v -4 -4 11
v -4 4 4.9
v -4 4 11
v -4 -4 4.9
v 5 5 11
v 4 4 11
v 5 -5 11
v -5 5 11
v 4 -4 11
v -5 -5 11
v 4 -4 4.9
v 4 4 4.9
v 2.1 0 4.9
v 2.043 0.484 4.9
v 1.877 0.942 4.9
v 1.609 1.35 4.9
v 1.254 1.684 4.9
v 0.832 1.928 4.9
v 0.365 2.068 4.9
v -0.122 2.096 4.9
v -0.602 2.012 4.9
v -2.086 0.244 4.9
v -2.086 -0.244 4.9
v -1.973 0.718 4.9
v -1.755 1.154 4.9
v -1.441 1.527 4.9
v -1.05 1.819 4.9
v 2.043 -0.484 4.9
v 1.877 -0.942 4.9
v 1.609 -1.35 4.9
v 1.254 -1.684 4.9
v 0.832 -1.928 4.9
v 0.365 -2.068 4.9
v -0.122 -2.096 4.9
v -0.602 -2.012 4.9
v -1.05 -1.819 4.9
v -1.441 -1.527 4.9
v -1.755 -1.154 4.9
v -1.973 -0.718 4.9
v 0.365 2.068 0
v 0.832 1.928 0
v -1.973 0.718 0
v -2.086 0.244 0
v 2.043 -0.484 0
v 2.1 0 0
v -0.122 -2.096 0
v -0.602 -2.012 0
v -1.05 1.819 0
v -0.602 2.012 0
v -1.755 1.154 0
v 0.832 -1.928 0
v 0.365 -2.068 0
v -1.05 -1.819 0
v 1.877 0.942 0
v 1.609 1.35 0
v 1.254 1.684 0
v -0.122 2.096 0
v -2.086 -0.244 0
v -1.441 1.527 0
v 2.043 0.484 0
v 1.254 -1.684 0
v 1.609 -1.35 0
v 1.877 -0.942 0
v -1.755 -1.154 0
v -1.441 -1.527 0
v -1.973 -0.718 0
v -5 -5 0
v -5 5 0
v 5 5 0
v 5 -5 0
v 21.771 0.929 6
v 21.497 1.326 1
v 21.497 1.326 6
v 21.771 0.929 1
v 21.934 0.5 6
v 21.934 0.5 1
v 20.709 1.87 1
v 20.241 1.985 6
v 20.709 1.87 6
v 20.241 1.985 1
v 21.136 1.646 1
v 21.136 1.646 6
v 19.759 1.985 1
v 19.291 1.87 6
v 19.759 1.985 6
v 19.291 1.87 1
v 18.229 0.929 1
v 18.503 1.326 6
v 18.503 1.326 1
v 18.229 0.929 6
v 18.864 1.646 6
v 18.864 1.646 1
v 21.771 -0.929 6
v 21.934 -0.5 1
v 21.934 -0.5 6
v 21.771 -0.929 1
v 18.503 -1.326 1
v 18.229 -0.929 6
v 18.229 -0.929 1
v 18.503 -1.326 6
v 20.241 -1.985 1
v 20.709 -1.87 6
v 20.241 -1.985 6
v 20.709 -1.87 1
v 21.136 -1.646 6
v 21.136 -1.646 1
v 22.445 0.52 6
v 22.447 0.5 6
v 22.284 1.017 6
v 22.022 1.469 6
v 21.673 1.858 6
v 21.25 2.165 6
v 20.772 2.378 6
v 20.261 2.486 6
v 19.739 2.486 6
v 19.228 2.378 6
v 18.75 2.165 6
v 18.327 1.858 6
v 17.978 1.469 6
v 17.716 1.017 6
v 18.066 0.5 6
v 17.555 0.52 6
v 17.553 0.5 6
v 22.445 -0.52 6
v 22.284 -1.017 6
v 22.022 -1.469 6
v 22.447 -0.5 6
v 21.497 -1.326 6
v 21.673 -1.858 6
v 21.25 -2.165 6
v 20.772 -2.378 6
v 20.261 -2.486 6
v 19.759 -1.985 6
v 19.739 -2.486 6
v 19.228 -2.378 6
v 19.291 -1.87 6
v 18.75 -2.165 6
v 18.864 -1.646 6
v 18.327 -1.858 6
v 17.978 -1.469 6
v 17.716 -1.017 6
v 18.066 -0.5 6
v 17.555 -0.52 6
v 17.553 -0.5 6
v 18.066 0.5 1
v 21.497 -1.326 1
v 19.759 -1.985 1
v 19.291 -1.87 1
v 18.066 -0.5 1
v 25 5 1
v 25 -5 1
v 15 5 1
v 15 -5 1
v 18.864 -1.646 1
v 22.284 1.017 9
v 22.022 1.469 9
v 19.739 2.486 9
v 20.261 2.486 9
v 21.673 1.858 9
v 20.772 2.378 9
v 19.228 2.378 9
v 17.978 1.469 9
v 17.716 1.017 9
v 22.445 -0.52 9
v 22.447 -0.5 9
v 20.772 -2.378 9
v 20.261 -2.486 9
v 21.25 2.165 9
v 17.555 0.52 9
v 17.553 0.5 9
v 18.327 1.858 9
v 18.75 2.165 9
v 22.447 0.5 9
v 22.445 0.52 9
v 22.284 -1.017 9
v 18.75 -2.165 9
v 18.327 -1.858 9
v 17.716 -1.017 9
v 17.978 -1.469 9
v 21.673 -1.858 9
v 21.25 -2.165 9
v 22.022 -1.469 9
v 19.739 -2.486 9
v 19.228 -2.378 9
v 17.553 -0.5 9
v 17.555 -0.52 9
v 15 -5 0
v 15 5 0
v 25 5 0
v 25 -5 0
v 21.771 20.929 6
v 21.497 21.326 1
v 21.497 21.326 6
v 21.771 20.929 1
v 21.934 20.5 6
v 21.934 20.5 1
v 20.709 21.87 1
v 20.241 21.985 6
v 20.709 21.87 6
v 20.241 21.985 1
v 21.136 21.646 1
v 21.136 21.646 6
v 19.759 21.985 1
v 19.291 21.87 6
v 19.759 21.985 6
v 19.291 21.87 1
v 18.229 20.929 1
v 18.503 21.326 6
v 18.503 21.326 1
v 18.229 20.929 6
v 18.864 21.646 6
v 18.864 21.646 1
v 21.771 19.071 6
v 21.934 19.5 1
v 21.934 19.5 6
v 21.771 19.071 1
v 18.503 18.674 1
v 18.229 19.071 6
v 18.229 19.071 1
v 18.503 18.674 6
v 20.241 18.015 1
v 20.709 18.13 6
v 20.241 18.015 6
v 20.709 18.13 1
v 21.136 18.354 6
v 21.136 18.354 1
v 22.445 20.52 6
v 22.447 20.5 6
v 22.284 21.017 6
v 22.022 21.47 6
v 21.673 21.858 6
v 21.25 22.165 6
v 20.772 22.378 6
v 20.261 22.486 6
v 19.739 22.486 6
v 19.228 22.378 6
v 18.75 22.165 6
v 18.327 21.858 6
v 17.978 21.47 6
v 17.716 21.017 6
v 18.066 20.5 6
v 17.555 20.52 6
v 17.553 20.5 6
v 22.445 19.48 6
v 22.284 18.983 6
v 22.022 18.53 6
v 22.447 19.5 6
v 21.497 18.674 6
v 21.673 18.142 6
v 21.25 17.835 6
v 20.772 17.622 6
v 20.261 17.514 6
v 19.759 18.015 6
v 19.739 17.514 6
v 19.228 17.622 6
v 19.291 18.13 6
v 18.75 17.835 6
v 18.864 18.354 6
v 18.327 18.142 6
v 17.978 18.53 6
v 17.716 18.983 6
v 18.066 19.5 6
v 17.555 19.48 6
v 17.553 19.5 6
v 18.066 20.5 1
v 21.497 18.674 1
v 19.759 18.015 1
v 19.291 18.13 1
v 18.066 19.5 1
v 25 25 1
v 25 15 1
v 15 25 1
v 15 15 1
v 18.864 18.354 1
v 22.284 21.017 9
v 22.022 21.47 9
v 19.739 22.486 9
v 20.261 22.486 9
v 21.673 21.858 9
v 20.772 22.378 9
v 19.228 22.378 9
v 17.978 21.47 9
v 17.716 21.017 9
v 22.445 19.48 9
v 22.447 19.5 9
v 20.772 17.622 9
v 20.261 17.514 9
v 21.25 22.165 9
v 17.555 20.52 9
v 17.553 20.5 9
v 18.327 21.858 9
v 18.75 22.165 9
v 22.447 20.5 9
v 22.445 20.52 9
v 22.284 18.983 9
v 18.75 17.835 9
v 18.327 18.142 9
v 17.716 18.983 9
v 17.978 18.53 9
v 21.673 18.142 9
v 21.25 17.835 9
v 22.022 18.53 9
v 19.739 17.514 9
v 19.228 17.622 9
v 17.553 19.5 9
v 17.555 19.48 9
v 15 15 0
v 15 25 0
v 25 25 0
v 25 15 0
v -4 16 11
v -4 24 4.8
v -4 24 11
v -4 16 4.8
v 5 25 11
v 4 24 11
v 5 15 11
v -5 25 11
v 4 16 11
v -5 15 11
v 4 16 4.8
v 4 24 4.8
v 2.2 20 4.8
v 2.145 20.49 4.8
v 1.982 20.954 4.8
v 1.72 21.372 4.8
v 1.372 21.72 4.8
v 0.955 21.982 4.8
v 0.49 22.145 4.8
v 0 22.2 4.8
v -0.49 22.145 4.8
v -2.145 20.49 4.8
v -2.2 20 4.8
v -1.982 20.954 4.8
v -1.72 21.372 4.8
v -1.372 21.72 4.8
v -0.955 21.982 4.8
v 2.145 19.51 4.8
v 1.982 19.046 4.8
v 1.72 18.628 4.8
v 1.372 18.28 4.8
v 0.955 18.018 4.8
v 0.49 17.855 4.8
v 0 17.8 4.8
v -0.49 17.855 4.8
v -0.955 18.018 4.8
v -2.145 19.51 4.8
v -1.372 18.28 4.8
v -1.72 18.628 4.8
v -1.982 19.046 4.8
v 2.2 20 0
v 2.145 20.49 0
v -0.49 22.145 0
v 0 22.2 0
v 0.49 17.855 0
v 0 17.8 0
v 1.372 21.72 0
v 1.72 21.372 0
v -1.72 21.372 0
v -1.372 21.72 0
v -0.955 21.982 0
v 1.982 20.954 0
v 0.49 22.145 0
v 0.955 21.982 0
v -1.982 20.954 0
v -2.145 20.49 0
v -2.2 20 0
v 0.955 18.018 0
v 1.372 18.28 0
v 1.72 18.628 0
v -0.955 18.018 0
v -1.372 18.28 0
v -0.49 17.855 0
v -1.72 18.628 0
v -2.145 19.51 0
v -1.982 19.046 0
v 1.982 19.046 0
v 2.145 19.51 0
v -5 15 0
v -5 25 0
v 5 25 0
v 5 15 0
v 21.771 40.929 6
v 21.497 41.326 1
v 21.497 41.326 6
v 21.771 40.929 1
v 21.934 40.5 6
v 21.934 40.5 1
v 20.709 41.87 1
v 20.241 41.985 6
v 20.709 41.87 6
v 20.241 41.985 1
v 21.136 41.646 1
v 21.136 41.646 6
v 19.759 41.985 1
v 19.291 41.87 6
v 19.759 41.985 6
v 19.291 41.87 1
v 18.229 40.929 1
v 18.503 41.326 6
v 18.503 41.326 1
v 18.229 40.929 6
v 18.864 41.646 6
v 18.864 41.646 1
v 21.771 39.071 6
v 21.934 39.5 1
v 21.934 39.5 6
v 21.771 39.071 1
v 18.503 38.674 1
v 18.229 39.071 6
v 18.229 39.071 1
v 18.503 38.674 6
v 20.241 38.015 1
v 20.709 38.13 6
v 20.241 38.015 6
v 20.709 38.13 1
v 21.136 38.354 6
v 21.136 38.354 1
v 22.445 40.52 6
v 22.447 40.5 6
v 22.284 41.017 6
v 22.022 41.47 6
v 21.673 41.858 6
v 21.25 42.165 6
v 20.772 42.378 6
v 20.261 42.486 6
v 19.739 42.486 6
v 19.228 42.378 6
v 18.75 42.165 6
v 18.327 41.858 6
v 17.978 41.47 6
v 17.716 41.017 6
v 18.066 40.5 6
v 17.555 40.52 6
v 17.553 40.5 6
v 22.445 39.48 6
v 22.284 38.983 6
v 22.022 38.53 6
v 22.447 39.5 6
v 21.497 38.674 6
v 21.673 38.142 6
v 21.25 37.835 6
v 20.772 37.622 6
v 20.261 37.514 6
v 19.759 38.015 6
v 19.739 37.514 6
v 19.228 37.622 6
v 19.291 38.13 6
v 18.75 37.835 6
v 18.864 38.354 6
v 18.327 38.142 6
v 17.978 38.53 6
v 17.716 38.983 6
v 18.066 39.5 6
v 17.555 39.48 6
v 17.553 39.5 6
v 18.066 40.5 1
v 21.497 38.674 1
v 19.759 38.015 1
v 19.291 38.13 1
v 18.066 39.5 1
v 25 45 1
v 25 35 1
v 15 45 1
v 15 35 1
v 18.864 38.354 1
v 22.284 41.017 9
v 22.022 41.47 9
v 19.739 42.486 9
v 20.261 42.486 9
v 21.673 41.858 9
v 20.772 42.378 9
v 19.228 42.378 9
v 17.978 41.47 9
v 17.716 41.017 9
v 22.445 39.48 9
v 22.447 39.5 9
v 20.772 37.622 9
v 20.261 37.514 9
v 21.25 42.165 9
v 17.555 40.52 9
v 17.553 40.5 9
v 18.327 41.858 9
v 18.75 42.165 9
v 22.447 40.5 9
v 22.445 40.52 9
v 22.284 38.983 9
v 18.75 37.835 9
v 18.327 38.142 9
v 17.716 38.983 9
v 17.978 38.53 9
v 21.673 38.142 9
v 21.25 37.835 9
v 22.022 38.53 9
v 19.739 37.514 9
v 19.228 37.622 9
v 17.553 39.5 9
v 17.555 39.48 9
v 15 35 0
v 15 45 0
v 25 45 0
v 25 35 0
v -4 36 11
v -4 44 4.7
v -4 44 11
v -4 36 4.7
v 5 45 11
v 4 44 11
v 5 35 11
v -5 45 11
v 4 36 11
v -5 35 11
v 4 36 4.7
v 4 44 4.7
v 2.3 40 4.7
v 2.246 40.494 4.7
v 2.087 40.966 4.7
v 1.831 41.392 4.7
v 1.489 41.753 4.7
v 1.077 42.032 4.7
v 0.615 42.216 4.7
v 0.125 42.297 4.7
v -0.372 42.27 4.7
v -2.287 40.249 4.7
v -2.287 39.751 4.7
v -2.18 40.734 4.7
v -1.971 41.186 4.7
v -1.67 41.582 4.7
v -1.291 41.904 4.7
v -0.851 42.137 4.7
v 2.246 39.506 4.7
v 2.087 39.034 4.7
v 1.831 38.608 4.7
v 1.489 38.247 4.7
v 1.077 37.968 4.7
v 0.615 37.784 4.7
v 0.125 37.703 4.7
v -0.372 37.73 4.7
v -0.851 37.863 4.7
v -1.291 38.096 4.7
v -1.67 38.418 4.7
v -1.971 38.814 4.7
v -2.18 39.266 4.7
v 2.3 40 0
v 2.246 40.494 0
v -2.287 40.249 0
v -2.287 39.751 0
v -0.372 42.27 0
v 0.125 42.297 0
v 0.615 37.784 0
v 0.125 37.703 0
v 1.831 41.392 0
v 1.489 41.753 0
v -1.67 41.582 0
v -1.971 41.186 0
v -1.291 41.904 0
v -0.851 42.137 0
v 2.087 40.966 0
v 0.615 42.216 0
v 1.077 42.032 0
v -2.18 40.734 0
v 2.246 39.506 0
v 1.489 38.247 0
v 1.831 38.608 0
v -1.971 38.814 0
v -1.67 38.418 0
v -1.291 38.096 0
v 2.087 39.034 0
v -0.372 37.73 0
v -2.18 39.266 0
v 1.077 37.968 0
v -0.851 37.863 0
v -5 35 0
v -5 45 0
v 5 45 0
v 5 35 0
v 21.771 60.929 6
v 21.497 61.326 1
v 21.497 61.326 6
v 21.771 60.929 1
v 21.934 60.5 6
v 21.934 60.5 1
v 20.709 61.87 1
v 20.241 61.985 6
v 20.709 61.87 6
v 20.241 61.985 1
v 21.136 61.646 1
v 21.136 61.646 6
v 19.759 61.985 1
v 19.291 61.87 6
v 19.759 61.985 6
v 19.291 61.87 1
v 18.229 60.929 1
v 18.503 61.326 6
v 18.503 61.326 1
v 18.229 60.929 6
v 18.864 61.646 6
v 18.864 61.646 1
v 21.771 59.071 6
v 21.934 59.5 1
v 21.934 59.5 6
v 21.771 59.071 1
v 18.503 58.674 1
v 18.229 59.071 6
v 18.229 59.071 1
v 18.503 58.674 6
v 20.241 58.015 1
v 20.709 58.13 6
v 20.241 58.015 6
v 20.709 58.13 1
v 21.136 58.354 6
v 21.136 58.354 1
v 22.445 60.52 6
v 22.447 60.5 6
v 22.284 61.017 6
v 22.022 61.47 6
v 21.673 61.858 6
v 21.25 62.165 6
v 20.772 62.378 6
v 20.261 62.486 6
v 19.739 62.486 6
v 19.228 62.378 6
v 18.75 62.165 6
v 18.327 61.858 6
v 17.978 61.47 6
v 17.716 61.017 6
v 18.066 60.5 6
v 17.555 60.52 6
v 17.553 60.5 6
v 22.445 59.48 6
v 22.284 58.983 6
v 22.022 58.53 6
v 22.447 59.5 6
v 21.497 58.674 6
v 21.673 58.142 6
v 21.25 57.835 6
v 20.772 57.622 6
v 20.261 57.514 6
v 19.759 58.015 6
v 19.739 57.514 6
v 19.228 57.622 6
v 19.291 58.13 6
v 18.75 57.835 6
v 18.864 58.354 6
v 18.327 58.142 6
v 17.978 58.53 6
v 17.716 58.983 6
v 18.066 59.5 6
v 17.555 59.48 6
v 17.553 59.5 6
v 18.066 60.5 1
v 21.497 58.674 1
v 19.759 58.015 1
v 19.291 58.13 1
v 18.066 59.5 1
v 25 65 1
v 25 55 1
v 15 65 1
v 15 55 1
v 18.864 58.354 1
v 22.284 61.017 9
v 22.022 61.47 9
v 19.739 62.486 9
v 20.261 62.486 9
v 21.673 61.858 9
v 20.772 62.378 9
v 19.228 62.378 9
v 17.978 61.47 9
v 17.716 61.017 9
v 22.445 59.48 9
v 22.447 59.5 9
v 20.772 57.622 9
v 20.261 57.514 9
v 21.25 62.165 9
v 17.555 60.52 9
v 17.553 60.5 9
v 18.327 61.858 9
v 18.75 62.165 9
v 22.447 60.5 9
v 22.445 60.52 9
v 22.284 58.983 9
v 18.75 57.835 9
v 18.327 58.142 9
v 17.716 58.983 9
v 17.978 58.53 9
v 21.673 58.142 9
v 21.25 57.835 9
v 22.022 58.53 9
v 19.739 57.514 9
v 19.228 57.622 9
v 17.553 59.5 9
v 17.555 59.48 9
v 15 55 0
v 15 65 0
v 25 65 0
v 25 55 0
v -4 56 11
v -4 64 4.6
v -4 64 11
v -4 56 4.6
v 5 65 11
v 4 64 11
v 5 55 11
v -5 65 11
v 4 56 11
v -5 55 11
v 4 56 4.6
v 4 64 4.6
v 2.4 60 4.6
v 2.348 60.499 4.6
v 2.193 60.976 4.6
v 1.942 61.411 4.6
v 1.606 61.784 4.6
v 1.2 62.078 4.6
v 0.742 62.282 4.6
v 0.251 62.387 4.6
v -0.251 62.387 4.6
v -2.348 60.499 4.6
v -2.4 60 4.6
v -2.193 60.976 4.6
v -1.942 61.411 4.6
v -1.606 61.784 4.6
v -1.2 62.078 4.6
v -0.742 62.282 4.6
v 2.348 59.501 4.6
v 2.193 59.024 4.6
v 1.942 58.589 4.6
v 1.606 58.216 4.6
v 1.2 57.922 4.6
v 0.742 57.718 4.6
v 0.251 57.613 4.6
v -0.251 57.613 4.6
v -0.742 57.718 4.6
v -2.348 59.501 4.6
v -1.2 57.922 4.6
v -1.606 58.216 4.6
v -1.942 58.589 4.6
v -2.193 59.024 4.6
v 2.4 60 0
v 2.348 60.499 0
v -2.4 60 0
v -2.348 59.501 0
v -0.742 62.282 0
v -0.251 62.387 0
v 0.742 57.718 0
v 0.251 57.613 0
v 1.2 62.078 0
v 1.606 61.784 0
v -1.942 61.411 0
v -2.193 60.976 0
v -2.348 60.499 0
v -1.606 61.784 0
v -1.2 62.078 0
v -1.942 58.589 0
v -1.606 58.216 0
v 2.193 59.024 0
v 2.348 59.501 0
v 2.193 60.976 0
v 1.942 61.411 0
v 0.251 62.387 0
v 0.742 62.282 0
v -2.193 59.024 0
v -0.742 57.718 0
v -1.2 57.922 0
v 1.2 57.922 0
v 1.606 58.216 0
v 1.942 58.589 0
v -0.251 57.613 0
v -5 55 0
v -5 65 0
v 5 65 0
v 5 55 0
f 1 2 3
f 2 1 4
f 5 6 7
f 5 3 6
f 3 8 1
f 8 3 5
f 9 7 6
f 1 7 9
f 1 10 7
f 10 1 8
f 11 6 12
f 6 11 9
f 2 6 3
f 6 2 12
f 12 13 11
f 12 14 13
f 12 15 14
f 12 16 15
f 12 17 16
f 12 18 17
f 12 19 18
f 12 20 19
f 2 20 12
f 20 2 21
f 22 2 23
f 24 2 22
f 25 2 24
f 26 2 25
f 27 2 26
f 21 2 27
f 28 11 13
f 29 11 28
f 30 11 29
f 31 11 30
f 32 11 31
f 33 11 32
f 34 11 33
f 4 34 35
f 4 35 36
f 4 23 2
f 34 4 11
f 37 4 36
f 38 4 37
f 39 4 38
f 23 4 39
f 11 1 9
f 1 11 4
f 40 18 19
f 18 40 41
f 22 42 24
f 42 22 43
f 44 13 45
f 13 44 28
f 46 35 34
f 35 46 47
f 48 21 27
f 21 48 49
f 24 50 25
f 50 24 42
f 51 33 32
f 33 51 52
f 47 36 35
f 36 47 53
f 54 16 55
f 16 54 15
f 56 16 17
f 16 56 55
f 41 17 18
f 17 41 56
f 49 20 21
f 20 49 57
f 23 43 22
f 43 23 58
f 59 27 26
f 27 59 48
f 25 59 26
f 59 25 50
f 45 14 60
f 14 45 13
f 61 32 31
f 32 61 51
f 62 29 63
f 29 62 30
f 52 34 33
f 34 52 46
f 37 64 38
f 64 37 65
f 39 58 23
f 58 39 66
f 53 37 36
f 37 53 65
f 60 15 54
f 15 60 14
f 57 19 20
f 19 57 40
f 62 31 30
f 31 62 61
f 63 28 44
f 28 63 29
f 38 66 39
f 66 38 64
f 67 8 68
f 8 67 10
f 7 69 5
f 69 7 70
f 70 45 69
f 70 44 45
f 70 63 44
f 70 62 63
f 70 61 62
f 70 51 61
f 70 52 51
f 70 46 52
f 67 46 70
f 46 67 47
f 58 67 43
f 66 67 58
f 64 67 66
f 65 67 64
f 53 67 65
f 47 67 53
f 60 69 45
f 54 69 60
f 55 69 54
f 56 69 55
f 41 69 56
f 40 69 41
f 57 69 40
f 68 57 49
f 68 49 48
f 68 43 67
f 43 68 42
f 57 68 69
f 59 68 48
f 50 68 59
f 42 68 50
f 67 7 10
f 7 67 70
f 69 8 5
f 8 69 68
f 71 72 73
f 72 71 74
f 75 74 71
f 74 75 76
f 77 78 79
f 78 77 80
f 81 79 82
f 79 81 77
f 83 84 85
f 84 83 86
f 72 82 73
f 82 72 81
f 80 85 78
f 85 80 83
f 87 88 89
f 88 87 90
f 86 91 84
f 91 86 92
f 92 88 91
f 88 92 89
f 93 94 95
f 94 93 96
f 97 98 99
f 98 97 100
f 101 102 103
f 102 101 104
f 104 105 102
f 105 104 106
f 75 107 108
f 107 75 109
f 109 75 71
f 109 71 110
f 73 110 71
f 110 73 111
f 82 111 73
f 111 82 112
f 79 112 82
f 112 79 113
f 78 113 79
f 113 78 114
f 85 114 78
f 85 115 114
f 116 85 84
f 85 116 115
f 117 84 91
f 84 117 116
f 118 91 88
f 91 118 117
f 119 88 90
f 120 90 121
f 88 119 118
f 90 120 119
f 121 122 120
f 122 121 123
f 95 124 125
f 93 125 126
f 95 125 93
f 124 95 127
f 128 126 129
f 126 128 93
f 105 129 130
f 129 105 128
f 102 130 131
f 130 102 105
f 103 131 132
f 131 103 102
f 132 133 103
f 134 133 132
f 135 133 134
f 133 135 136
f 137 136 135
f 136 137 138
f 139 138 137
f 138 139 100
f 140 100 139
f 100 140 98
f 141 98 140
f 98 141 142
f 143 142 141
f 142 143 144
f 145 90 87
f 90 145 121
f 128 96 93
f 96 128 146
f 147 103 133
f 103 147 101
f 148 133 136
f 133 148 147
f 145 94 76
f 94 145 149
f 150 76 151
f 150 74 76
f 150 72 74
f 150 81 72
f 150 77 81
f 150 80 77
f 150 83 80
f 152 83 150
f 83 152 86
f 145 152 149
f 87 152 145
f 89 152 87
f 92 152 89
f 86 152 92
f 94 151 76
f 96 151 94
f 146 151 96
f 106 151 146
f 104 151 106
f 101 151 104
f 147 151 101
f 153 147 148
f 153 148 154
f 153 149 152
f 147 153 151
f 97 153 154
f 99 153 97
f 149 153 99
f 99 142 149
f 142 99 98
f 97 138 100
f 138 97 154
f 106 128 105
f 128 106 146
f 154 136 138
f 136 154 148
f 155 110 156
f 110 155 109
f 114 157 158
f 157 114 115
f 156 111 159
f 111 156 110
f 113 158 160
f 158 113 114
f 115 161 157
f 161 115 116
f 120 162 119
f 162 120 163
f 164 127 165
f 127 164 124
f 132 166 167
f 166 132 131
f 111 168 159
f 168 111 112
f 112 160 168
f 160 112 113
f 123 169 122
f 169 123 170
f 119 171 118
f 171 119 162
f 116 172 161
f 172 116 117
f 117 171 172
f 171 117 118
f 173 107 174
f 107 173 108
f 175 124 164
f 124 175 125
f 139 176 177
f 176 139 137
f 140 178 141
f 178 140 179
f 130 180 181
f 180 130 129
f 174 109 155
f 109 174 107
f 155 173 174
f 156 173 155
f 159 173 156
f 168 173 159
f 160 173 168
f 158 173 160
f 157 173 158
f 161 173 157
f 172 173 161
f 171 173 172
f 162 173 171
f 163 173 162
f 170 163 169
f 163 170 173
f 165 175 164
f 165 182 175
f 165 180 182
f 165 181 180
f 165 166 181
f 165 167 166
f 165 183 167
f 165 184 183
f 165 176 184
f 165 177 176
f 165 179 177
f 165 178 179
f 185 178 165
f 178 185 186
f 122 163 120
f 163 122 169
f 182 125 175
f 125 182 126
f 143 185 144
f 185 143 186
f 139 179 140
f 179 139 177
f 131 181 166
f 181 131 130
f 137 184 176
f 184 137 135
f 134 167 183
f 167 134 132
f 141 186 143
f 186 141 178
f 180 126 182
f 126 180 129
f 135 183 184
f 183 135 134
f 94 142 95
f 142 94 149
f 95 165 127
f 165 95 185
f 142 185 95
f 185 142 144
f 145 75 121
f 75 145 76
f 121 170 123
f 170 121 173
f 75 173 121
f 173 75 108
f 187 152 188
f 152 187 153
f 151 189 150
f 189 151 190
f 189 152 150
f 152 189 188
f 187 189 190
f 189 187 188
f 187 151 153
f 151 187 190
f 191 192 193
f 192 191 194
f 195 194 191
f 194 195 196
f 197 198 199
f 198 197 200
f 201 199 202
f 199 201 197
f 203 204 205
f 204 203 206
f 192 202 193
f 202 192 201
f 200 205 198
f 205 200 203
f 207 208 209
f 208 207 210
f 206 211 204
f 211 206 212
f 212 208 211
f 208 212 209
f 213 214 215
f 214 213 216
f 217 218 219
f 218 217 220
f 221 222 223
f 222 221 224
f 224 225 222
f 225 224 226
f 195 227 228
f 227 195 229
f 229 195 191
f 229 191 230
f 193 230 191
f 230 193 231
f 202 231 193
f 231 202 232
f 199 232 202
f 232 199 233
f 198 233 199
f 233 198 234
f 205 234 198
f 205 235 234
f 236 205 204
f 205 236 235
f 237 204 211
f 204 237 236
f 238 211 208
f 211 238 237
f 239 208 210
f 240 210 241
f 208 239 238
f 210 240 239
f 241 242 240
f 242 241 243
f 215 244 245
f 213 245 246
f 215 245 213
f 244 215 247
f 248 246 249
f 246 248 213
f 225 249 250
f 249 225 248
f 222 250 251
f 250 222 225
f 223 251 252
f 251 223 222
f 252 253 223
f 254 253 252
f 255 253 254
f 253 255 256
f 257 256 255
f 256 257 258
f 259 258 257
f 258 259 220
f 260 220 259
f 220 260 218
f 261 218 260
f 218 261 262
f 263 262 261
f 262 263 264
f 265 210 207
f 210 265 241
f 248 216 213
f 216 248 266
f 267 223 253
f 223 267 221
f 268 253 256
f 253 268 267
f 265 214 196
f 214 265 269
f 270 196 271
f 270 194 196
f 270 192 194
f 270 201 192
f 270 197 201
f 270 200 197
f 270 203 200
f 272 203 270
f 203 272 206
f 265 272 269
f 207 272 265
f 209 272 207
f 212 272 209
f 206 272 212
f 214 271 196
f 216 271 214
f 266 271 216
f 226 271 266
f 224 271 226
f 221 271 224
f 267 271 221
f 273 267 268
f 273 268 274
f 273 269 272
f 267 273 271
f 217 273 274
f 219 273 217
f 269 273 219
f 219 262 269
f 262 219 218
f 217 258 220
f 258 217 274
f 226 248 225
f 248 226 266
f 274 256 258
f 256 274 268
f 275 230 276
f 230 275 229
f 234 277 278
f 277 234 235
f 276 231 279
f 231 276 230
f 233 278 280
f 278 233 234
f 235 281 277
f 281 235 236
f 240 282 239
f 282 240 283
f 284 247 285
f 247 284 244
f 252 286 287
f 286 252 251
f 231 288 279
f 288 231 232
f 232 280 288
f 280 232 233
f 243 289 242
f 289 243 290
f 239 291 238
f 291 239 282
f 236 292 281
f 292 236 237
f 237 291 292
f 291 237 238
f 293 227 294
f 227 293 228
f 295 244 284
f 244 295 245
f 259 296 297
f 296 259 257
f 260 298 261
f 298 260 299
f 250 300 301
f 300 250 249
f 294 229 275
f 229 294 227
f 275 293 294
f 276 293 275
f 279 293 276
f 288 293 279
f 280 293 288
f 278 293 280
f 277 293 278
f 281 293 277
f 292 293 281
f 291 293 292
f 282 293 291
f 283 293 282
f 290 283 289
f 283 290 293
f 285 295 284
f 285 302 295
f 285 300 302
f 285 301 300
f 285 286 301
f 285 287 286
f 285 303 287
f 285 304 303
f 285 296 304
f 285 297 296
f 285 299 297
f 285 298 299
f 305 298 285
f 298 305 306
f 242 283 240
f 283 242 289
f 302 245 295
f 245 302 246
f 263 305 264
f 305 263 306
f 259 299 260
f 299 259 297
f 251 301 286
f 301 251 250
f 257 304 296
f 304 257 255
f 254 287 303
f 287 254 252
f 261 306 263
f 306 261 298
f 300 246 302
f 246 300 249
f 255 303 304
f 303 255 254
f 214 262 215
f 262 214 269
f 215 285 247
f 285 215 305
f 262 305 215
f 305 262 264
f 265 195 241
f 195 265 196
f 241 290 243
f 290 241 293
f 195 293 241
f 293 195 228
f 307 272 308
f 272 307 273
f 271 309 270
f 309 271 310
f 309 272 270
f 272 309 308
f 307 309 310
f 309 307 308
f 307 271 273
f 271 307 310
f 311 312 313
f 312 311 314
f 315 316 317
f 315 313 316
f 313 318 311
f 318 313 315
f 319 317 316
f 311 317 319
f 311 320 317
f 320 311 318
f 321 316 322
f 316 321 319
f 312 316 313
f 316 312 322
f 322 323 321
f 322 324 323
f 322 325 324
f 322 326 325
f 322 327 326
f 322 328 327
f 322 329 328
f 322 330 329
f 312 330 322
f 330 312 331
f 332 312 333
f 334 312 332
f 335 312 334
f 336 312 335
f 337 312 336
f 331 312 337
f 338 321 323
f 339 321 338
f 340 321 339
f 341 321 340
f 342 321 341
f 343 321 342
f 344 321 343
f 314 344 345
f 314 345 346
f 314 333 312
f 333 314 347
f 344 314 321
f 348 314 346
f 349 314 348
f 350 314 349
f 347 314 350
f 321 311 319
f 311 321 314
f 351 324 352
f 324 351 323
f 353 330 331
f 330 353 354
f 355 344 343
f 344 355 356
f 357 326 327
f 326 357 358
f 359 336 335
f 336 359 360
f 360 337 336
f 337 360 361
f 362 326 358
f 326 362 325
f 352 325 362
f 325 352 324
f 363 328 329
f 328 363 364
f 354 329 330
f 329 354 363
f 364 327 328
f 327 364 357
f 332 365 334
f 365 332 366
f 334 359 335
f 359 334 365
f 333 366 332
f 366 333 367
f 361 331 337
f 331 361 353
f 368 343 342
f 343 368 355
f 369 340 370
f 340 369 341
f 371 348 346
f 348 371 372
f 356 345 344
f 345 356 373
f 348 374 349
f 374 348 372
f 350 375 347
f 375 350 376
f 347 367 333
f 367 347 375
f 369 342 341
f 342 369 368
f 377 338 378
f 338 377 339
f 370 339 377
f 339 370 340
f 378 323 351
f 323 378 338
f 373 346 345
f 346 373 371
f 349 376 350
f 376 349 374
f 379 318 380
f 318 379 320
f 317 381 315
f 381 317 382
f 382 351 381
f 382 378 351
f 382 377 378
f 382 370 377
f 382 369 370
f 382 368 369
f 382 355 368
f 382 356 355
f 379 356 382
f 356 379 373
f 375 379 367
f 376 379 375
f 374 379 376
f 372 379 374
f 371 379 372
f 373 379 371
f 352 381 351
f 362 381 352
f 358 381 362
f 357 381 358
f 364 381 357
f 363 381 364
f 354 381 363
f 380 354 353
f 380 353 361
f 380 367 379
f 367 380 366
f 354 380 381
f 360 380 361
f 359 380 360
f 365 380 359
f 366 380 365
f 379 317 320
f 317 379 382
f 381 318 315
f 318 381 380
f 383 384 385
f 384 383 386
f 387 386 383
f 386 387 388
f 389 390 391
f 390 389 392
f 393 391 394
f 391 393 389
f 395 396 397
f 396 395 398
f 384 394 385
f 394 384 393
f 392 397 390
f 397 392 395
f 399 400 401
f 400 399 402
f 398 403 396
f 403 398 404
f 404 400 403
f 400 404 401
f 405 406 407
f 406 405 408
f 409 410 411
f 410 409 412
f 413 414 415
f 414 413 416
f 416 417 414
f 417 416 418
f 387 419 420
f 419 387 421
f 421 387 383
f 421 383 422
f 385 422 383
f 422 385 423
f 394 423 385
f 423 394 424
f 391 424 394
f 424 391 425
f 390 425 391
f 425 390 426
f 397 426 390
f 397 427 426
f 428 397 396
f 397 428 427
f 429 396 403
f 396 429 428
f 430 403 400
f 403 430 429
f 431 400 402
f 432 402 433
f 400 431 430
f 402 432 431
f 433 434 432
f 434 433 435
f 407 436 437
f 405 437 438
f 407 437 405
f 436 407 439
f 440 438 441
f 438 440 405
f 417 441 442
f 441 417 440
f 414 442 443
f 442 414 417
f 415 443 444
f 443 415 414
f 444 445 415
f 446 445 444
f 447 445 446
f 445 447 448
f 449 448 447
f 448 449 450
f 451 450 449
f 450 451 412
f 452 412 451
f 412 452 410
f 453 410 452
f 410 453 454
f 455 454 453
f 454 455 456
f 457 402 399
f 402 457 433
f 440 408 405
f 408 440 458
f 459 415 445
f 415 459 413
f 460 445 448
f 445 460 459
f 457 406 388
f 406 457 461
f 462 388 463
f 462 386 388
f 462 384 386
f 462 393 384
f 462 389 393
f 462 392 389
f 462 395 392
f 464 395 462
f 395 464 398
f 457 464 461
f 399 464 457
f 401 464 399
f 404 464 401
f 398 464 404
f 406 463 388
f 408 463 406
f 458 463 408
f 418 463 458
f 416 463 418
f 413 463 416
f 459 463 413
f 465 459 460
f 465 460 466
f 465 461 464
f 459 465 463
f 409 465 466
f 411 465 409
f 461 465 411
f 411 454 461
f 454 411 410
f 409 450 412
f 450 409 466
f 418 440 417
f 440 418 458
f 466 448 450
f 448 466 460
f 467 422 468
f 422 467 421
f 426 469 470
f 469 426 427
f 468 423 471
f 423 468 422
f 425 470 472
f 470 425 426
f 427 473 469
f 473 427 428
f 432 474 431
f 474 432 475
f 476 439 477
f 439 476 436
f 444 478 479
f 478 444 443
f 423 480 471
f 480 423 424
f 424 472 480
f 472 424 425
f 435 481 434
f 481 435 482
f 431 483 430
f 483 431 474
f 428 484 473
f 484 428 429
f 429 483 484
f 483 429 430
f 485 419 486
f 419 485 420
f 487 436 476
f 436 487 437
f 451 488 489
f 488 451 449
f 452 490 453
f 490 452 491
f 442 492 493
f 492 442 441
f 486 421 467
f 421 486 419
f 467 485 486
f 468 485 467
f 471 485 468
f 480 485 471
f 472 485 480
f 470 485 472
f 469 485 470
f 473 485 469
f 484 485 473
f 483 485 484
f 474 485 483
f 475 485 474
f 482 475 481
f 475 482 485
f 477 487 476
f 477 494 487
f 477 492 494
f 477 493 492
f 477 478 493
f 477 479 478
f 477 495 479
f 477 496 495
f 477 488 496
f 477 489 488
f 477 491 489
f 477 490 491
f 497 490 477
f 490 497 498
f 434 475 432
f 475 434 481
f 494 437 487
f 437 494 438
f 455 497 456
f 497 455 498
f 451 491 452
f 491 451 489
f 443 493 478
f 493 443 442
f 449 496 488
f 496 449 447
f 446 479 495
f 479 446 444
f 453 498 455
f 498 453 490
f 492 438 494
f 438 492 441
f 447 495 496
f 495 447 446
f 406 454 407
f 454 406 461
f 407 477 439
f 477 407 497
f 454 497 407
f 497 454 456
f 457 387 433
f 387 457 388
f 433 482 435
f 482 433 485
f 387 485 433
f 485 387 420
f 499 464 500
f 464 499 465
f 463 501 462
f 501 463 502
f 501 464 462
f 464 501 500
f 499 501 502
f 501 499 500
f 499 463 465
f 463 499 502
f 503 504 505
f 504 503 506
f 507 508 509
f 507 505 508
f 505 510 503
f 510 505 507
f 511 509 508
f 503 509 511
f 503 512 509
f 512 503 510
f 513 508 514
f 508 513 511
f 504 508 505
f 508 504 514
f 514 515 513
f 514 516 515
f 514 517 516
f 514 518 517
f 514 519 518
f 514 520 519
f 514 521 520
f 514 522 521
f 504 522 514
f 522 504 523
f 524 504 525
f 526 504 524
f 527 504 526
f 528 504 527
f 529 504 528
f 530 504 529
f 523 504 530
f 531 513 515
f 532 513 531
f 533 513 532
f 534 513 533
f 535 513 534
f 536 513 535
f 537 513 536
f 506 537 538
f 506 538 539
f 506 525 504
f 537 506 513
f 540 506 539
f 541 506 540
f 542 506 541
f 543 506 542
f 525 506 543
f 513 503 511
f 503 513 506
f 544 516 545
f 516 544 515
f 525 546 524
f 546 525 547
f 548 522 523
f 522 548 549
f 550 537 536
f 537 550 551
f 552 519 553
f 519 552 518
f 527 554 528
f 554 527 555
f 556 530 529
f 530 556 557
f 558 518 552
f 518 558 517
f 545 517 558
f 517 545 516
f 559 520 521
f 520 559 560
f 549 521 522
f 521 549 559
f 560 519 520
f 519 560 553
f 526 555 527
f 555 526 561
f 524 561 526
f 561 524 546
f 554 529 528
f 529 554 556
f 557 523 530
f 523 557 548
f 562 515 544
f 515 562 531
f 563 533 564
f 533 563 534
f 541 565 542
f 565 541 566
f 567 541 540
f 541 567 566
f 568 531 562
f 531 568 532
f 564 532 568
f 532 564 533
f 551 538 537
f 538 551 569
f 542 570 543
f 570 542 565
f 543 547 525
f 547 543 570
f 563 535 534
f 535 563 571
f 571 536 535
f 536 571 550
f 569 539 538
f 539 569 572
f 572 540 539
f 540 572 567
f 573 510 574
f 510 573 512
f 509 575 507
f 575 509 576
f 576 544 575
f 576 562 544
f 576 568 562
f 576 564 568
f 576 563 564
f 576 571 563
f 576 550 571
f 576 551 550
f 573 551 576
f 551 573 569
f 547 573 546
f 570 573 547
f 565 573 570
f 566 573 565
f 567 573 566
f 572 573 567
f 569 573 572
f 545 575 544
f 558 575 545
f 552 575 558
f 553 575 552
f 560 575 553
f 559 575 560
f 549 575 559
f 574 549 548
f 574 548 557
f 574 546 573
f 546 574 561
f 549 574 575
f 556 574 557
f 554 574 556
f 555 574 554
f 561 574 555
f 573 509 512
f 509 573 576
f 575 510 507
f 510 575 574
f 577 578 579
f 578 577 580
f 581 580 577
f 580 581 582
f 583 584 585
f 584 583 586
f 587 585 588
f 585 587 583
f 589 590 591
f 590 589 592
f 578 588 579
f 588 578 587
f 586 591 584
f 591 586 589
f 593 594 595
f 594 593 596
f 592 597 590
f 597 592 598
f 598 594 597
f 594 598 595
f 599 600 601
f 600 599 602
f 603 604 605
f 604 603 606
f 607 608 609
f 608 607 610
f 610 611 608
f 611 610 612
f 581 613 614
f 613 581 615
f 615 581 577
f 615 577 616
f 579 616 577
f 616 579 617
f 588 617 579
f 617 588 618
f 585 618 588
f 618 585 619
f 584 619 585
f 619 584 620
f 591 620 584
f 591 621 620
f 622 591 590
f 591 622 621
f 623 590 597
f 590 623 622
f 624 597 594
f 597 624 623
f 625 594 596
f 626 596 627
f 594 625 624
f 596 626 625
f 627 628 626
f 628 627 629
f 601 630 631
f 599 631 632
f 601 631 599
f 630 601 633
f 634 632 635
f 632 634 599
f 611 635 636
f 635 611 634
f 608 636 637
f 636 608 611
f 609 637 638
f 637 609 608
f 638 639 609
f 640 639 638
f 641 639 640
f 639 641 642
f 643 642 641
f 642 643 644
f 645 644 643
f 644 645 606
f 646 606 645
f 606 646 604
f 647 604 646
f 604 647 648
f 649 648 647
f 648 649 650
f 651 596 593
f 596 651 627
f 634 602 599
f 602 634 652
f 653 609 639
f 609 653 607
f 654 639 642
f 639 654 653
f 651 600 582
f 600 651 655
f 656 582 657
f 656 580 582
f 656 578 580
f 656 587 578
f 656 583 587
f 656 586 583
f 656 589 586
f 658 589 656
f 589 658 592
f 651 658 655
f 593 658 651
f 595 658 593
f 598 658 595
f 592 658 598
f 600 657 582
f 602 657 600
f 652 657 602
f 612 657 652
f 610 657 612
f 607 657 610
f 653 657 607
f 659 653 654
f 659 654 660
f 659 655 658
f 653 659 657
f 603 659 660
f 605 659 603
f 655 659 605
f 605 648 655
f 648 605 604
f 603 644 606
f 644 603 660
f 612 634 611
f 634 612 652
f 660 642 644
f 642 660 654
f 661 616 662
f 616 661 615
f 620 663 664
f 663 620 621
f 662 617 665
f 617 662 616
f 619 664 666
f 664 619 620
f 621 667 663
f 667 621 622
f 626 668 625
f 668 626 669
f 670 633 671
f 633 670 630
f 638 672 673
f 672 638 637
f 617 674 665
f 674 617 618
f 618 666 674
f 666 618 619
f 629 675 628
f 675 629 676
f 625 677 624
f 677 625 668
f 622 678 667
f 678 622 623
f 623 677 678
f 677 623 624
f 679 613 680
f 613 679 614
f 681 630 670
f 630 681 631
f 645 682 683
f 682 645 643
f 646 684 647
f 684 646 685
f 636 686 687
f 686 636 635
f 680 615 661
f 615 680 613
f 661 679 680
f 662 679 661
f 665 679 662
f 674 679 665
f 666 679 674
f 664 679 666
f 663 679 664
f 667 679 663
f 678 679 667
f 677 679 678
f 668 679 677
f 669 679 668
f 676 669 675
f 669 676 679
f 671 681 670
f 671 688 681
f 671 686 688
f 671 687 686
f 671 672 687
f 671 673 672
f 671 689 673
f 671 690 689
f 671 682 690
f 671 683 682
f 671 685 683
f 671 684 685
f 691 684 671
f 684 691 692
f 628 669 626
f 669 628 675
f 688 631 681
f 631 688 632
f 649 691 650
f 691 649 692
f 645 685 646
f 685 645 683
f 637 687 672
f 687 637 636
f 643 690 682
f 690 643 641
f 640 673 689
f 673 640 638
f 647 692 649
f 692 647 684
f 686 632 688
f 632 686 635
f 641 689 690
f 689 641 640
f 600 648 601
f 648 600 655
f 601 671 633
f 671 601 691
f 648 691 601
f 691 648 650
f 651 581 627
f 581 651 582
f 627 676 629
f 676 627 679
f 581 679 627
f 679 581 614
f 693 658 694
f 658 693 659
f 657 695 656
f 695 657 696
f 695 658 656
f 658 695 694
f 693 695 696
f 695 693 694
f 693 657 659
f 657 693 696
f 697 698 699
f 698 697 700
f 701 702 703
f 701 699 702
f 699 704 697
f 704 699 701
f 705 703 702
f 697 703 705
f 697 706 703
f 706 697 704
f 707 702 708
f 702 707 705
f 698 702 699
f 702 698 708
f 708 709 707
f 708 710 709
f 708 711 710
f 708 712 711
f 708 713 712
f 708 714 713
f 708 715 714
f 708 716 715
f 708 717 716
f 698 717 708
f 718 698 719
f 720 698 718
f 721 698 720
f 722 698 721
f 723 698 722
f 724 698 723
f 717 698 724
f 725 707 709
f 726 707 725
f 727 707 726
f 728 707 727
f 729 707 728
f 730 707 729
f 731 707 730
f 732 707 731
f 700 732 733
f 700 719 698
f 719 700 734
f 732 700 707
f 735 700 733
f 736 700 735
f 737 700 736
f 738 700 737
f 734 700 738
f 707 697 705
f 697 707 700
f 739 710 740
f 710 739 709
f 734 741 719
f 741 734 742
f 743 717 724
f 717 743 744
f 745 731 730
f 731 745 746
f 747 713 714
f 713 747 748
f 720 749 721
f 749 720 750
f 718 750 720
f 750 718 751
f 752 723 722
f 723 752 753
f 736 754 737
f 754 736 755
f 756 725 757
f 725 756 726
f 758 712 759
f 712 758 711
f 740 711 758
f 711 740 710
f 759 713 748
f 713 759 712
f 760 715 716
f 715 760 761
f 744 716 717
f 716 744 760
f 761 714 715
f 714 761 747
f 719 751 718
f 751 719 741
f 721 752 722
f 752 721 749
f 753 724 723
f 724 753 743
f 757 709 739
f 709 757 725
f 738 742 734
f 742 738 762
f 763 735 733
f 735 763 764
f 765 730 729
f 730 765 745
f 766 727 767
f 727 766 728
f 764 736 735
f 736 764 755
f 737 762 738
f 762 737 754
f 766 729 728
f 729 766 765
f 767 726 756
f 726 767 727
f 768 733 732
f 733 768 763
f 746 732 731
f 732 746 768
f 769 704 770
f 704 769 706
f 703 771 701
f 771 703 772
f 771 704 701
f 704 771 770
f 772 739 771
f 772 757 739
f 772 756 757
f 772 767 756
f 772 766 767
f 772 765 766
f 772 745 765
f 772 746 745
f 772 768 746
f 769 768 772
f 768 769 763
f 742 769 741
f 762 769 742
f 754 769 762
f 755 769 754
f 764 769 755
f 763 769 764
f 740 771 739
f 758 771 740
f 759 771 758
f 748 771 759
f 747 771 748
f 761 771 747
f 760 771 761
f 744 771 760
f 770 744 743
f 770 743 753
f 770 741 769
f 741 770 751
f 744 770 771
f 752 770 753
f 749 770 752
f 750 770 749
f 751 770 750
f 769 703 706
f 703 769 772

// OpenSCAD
module connectors(tolerance= 0.1, base_size=10, wall_thickness=1, plate_height=1, slit_depth=1, stem_height=5, stem_radius=2, knob_height=3, knob_radius=2.5) {
    height = plate_height + stem_height + knob_height + 2*wall_thickness;
    translate([0, 0, 0]) female_connector(base_size, height, wall_thickness, stem_radius+tolerance, stem_height-tolerance);
    translate([2*base_size, 0, 0]) male_connector(base_size, plate_height, slit_depth, stem_height, stem_radius, knob_height, knob_radius);
}

module female_connector(base_size=10, height=10, wall_thickness=1, hole_radius=2, bottom_height=5) {
    translate([-base_size/2, -base_size/2, 0]) difference() {
        cube([base_size, base_size, height]);
        union(){
            well_size = base_size - 2*wall_thickness;
            translate([wall_thickness, wall_thickness, bottom_height]) cube([well_size, well_size, height - bottom_height]);
            translate([base_size/2, base_size/2, -height/2]) cylinder(2*height, r=hole_radius);
        }
    }
}

module male_connector(plate_size=10, plate_height=1, slit_depth=1, stem_height=5, stem_radius=2, knob_height=3, knob_radius=2.5){
    union () {
        translate([0, 0, 0]) plate(plate_size, plate_height);
        translate([0, 0, plate_height]) knob(slit_depth, stem_height, stem_radius, knob_height, knob_radius);
    }
}

module knob(slit_depth=1, stem_height=5, stem_radius=2, knob_height=3, knob_radius=2.5) {
    epsilon = 2;
    slit_width = 2*(max(stem_radius, knob_radius) + epsilon);
    slit_height = stem_height + knob_height + 2*epsilon;
    difference() {
        union() {
            translate([0,0,0]) cylinder(stem_height, r=stem_radius, true);
            translate([0,0,stem_height]) cylinder(knob_height, r=knob_radius, true);
        }
        translate([-slit_width/2, -slit_depth/2, -epsilon]) cube([
            slit_width, 
            slit_depth,
            slit_height
        ]);
    }
}

module plate(size=10, height=1) {
    translate([-size/2, -size/2, 0]) cube([size, size, height]);
}


$fs = 0.5;
for (index=[0:1:3]) {
    translate([0, 20*index, 0]) connectors(tolerance=0.1*(index + 1));
}
